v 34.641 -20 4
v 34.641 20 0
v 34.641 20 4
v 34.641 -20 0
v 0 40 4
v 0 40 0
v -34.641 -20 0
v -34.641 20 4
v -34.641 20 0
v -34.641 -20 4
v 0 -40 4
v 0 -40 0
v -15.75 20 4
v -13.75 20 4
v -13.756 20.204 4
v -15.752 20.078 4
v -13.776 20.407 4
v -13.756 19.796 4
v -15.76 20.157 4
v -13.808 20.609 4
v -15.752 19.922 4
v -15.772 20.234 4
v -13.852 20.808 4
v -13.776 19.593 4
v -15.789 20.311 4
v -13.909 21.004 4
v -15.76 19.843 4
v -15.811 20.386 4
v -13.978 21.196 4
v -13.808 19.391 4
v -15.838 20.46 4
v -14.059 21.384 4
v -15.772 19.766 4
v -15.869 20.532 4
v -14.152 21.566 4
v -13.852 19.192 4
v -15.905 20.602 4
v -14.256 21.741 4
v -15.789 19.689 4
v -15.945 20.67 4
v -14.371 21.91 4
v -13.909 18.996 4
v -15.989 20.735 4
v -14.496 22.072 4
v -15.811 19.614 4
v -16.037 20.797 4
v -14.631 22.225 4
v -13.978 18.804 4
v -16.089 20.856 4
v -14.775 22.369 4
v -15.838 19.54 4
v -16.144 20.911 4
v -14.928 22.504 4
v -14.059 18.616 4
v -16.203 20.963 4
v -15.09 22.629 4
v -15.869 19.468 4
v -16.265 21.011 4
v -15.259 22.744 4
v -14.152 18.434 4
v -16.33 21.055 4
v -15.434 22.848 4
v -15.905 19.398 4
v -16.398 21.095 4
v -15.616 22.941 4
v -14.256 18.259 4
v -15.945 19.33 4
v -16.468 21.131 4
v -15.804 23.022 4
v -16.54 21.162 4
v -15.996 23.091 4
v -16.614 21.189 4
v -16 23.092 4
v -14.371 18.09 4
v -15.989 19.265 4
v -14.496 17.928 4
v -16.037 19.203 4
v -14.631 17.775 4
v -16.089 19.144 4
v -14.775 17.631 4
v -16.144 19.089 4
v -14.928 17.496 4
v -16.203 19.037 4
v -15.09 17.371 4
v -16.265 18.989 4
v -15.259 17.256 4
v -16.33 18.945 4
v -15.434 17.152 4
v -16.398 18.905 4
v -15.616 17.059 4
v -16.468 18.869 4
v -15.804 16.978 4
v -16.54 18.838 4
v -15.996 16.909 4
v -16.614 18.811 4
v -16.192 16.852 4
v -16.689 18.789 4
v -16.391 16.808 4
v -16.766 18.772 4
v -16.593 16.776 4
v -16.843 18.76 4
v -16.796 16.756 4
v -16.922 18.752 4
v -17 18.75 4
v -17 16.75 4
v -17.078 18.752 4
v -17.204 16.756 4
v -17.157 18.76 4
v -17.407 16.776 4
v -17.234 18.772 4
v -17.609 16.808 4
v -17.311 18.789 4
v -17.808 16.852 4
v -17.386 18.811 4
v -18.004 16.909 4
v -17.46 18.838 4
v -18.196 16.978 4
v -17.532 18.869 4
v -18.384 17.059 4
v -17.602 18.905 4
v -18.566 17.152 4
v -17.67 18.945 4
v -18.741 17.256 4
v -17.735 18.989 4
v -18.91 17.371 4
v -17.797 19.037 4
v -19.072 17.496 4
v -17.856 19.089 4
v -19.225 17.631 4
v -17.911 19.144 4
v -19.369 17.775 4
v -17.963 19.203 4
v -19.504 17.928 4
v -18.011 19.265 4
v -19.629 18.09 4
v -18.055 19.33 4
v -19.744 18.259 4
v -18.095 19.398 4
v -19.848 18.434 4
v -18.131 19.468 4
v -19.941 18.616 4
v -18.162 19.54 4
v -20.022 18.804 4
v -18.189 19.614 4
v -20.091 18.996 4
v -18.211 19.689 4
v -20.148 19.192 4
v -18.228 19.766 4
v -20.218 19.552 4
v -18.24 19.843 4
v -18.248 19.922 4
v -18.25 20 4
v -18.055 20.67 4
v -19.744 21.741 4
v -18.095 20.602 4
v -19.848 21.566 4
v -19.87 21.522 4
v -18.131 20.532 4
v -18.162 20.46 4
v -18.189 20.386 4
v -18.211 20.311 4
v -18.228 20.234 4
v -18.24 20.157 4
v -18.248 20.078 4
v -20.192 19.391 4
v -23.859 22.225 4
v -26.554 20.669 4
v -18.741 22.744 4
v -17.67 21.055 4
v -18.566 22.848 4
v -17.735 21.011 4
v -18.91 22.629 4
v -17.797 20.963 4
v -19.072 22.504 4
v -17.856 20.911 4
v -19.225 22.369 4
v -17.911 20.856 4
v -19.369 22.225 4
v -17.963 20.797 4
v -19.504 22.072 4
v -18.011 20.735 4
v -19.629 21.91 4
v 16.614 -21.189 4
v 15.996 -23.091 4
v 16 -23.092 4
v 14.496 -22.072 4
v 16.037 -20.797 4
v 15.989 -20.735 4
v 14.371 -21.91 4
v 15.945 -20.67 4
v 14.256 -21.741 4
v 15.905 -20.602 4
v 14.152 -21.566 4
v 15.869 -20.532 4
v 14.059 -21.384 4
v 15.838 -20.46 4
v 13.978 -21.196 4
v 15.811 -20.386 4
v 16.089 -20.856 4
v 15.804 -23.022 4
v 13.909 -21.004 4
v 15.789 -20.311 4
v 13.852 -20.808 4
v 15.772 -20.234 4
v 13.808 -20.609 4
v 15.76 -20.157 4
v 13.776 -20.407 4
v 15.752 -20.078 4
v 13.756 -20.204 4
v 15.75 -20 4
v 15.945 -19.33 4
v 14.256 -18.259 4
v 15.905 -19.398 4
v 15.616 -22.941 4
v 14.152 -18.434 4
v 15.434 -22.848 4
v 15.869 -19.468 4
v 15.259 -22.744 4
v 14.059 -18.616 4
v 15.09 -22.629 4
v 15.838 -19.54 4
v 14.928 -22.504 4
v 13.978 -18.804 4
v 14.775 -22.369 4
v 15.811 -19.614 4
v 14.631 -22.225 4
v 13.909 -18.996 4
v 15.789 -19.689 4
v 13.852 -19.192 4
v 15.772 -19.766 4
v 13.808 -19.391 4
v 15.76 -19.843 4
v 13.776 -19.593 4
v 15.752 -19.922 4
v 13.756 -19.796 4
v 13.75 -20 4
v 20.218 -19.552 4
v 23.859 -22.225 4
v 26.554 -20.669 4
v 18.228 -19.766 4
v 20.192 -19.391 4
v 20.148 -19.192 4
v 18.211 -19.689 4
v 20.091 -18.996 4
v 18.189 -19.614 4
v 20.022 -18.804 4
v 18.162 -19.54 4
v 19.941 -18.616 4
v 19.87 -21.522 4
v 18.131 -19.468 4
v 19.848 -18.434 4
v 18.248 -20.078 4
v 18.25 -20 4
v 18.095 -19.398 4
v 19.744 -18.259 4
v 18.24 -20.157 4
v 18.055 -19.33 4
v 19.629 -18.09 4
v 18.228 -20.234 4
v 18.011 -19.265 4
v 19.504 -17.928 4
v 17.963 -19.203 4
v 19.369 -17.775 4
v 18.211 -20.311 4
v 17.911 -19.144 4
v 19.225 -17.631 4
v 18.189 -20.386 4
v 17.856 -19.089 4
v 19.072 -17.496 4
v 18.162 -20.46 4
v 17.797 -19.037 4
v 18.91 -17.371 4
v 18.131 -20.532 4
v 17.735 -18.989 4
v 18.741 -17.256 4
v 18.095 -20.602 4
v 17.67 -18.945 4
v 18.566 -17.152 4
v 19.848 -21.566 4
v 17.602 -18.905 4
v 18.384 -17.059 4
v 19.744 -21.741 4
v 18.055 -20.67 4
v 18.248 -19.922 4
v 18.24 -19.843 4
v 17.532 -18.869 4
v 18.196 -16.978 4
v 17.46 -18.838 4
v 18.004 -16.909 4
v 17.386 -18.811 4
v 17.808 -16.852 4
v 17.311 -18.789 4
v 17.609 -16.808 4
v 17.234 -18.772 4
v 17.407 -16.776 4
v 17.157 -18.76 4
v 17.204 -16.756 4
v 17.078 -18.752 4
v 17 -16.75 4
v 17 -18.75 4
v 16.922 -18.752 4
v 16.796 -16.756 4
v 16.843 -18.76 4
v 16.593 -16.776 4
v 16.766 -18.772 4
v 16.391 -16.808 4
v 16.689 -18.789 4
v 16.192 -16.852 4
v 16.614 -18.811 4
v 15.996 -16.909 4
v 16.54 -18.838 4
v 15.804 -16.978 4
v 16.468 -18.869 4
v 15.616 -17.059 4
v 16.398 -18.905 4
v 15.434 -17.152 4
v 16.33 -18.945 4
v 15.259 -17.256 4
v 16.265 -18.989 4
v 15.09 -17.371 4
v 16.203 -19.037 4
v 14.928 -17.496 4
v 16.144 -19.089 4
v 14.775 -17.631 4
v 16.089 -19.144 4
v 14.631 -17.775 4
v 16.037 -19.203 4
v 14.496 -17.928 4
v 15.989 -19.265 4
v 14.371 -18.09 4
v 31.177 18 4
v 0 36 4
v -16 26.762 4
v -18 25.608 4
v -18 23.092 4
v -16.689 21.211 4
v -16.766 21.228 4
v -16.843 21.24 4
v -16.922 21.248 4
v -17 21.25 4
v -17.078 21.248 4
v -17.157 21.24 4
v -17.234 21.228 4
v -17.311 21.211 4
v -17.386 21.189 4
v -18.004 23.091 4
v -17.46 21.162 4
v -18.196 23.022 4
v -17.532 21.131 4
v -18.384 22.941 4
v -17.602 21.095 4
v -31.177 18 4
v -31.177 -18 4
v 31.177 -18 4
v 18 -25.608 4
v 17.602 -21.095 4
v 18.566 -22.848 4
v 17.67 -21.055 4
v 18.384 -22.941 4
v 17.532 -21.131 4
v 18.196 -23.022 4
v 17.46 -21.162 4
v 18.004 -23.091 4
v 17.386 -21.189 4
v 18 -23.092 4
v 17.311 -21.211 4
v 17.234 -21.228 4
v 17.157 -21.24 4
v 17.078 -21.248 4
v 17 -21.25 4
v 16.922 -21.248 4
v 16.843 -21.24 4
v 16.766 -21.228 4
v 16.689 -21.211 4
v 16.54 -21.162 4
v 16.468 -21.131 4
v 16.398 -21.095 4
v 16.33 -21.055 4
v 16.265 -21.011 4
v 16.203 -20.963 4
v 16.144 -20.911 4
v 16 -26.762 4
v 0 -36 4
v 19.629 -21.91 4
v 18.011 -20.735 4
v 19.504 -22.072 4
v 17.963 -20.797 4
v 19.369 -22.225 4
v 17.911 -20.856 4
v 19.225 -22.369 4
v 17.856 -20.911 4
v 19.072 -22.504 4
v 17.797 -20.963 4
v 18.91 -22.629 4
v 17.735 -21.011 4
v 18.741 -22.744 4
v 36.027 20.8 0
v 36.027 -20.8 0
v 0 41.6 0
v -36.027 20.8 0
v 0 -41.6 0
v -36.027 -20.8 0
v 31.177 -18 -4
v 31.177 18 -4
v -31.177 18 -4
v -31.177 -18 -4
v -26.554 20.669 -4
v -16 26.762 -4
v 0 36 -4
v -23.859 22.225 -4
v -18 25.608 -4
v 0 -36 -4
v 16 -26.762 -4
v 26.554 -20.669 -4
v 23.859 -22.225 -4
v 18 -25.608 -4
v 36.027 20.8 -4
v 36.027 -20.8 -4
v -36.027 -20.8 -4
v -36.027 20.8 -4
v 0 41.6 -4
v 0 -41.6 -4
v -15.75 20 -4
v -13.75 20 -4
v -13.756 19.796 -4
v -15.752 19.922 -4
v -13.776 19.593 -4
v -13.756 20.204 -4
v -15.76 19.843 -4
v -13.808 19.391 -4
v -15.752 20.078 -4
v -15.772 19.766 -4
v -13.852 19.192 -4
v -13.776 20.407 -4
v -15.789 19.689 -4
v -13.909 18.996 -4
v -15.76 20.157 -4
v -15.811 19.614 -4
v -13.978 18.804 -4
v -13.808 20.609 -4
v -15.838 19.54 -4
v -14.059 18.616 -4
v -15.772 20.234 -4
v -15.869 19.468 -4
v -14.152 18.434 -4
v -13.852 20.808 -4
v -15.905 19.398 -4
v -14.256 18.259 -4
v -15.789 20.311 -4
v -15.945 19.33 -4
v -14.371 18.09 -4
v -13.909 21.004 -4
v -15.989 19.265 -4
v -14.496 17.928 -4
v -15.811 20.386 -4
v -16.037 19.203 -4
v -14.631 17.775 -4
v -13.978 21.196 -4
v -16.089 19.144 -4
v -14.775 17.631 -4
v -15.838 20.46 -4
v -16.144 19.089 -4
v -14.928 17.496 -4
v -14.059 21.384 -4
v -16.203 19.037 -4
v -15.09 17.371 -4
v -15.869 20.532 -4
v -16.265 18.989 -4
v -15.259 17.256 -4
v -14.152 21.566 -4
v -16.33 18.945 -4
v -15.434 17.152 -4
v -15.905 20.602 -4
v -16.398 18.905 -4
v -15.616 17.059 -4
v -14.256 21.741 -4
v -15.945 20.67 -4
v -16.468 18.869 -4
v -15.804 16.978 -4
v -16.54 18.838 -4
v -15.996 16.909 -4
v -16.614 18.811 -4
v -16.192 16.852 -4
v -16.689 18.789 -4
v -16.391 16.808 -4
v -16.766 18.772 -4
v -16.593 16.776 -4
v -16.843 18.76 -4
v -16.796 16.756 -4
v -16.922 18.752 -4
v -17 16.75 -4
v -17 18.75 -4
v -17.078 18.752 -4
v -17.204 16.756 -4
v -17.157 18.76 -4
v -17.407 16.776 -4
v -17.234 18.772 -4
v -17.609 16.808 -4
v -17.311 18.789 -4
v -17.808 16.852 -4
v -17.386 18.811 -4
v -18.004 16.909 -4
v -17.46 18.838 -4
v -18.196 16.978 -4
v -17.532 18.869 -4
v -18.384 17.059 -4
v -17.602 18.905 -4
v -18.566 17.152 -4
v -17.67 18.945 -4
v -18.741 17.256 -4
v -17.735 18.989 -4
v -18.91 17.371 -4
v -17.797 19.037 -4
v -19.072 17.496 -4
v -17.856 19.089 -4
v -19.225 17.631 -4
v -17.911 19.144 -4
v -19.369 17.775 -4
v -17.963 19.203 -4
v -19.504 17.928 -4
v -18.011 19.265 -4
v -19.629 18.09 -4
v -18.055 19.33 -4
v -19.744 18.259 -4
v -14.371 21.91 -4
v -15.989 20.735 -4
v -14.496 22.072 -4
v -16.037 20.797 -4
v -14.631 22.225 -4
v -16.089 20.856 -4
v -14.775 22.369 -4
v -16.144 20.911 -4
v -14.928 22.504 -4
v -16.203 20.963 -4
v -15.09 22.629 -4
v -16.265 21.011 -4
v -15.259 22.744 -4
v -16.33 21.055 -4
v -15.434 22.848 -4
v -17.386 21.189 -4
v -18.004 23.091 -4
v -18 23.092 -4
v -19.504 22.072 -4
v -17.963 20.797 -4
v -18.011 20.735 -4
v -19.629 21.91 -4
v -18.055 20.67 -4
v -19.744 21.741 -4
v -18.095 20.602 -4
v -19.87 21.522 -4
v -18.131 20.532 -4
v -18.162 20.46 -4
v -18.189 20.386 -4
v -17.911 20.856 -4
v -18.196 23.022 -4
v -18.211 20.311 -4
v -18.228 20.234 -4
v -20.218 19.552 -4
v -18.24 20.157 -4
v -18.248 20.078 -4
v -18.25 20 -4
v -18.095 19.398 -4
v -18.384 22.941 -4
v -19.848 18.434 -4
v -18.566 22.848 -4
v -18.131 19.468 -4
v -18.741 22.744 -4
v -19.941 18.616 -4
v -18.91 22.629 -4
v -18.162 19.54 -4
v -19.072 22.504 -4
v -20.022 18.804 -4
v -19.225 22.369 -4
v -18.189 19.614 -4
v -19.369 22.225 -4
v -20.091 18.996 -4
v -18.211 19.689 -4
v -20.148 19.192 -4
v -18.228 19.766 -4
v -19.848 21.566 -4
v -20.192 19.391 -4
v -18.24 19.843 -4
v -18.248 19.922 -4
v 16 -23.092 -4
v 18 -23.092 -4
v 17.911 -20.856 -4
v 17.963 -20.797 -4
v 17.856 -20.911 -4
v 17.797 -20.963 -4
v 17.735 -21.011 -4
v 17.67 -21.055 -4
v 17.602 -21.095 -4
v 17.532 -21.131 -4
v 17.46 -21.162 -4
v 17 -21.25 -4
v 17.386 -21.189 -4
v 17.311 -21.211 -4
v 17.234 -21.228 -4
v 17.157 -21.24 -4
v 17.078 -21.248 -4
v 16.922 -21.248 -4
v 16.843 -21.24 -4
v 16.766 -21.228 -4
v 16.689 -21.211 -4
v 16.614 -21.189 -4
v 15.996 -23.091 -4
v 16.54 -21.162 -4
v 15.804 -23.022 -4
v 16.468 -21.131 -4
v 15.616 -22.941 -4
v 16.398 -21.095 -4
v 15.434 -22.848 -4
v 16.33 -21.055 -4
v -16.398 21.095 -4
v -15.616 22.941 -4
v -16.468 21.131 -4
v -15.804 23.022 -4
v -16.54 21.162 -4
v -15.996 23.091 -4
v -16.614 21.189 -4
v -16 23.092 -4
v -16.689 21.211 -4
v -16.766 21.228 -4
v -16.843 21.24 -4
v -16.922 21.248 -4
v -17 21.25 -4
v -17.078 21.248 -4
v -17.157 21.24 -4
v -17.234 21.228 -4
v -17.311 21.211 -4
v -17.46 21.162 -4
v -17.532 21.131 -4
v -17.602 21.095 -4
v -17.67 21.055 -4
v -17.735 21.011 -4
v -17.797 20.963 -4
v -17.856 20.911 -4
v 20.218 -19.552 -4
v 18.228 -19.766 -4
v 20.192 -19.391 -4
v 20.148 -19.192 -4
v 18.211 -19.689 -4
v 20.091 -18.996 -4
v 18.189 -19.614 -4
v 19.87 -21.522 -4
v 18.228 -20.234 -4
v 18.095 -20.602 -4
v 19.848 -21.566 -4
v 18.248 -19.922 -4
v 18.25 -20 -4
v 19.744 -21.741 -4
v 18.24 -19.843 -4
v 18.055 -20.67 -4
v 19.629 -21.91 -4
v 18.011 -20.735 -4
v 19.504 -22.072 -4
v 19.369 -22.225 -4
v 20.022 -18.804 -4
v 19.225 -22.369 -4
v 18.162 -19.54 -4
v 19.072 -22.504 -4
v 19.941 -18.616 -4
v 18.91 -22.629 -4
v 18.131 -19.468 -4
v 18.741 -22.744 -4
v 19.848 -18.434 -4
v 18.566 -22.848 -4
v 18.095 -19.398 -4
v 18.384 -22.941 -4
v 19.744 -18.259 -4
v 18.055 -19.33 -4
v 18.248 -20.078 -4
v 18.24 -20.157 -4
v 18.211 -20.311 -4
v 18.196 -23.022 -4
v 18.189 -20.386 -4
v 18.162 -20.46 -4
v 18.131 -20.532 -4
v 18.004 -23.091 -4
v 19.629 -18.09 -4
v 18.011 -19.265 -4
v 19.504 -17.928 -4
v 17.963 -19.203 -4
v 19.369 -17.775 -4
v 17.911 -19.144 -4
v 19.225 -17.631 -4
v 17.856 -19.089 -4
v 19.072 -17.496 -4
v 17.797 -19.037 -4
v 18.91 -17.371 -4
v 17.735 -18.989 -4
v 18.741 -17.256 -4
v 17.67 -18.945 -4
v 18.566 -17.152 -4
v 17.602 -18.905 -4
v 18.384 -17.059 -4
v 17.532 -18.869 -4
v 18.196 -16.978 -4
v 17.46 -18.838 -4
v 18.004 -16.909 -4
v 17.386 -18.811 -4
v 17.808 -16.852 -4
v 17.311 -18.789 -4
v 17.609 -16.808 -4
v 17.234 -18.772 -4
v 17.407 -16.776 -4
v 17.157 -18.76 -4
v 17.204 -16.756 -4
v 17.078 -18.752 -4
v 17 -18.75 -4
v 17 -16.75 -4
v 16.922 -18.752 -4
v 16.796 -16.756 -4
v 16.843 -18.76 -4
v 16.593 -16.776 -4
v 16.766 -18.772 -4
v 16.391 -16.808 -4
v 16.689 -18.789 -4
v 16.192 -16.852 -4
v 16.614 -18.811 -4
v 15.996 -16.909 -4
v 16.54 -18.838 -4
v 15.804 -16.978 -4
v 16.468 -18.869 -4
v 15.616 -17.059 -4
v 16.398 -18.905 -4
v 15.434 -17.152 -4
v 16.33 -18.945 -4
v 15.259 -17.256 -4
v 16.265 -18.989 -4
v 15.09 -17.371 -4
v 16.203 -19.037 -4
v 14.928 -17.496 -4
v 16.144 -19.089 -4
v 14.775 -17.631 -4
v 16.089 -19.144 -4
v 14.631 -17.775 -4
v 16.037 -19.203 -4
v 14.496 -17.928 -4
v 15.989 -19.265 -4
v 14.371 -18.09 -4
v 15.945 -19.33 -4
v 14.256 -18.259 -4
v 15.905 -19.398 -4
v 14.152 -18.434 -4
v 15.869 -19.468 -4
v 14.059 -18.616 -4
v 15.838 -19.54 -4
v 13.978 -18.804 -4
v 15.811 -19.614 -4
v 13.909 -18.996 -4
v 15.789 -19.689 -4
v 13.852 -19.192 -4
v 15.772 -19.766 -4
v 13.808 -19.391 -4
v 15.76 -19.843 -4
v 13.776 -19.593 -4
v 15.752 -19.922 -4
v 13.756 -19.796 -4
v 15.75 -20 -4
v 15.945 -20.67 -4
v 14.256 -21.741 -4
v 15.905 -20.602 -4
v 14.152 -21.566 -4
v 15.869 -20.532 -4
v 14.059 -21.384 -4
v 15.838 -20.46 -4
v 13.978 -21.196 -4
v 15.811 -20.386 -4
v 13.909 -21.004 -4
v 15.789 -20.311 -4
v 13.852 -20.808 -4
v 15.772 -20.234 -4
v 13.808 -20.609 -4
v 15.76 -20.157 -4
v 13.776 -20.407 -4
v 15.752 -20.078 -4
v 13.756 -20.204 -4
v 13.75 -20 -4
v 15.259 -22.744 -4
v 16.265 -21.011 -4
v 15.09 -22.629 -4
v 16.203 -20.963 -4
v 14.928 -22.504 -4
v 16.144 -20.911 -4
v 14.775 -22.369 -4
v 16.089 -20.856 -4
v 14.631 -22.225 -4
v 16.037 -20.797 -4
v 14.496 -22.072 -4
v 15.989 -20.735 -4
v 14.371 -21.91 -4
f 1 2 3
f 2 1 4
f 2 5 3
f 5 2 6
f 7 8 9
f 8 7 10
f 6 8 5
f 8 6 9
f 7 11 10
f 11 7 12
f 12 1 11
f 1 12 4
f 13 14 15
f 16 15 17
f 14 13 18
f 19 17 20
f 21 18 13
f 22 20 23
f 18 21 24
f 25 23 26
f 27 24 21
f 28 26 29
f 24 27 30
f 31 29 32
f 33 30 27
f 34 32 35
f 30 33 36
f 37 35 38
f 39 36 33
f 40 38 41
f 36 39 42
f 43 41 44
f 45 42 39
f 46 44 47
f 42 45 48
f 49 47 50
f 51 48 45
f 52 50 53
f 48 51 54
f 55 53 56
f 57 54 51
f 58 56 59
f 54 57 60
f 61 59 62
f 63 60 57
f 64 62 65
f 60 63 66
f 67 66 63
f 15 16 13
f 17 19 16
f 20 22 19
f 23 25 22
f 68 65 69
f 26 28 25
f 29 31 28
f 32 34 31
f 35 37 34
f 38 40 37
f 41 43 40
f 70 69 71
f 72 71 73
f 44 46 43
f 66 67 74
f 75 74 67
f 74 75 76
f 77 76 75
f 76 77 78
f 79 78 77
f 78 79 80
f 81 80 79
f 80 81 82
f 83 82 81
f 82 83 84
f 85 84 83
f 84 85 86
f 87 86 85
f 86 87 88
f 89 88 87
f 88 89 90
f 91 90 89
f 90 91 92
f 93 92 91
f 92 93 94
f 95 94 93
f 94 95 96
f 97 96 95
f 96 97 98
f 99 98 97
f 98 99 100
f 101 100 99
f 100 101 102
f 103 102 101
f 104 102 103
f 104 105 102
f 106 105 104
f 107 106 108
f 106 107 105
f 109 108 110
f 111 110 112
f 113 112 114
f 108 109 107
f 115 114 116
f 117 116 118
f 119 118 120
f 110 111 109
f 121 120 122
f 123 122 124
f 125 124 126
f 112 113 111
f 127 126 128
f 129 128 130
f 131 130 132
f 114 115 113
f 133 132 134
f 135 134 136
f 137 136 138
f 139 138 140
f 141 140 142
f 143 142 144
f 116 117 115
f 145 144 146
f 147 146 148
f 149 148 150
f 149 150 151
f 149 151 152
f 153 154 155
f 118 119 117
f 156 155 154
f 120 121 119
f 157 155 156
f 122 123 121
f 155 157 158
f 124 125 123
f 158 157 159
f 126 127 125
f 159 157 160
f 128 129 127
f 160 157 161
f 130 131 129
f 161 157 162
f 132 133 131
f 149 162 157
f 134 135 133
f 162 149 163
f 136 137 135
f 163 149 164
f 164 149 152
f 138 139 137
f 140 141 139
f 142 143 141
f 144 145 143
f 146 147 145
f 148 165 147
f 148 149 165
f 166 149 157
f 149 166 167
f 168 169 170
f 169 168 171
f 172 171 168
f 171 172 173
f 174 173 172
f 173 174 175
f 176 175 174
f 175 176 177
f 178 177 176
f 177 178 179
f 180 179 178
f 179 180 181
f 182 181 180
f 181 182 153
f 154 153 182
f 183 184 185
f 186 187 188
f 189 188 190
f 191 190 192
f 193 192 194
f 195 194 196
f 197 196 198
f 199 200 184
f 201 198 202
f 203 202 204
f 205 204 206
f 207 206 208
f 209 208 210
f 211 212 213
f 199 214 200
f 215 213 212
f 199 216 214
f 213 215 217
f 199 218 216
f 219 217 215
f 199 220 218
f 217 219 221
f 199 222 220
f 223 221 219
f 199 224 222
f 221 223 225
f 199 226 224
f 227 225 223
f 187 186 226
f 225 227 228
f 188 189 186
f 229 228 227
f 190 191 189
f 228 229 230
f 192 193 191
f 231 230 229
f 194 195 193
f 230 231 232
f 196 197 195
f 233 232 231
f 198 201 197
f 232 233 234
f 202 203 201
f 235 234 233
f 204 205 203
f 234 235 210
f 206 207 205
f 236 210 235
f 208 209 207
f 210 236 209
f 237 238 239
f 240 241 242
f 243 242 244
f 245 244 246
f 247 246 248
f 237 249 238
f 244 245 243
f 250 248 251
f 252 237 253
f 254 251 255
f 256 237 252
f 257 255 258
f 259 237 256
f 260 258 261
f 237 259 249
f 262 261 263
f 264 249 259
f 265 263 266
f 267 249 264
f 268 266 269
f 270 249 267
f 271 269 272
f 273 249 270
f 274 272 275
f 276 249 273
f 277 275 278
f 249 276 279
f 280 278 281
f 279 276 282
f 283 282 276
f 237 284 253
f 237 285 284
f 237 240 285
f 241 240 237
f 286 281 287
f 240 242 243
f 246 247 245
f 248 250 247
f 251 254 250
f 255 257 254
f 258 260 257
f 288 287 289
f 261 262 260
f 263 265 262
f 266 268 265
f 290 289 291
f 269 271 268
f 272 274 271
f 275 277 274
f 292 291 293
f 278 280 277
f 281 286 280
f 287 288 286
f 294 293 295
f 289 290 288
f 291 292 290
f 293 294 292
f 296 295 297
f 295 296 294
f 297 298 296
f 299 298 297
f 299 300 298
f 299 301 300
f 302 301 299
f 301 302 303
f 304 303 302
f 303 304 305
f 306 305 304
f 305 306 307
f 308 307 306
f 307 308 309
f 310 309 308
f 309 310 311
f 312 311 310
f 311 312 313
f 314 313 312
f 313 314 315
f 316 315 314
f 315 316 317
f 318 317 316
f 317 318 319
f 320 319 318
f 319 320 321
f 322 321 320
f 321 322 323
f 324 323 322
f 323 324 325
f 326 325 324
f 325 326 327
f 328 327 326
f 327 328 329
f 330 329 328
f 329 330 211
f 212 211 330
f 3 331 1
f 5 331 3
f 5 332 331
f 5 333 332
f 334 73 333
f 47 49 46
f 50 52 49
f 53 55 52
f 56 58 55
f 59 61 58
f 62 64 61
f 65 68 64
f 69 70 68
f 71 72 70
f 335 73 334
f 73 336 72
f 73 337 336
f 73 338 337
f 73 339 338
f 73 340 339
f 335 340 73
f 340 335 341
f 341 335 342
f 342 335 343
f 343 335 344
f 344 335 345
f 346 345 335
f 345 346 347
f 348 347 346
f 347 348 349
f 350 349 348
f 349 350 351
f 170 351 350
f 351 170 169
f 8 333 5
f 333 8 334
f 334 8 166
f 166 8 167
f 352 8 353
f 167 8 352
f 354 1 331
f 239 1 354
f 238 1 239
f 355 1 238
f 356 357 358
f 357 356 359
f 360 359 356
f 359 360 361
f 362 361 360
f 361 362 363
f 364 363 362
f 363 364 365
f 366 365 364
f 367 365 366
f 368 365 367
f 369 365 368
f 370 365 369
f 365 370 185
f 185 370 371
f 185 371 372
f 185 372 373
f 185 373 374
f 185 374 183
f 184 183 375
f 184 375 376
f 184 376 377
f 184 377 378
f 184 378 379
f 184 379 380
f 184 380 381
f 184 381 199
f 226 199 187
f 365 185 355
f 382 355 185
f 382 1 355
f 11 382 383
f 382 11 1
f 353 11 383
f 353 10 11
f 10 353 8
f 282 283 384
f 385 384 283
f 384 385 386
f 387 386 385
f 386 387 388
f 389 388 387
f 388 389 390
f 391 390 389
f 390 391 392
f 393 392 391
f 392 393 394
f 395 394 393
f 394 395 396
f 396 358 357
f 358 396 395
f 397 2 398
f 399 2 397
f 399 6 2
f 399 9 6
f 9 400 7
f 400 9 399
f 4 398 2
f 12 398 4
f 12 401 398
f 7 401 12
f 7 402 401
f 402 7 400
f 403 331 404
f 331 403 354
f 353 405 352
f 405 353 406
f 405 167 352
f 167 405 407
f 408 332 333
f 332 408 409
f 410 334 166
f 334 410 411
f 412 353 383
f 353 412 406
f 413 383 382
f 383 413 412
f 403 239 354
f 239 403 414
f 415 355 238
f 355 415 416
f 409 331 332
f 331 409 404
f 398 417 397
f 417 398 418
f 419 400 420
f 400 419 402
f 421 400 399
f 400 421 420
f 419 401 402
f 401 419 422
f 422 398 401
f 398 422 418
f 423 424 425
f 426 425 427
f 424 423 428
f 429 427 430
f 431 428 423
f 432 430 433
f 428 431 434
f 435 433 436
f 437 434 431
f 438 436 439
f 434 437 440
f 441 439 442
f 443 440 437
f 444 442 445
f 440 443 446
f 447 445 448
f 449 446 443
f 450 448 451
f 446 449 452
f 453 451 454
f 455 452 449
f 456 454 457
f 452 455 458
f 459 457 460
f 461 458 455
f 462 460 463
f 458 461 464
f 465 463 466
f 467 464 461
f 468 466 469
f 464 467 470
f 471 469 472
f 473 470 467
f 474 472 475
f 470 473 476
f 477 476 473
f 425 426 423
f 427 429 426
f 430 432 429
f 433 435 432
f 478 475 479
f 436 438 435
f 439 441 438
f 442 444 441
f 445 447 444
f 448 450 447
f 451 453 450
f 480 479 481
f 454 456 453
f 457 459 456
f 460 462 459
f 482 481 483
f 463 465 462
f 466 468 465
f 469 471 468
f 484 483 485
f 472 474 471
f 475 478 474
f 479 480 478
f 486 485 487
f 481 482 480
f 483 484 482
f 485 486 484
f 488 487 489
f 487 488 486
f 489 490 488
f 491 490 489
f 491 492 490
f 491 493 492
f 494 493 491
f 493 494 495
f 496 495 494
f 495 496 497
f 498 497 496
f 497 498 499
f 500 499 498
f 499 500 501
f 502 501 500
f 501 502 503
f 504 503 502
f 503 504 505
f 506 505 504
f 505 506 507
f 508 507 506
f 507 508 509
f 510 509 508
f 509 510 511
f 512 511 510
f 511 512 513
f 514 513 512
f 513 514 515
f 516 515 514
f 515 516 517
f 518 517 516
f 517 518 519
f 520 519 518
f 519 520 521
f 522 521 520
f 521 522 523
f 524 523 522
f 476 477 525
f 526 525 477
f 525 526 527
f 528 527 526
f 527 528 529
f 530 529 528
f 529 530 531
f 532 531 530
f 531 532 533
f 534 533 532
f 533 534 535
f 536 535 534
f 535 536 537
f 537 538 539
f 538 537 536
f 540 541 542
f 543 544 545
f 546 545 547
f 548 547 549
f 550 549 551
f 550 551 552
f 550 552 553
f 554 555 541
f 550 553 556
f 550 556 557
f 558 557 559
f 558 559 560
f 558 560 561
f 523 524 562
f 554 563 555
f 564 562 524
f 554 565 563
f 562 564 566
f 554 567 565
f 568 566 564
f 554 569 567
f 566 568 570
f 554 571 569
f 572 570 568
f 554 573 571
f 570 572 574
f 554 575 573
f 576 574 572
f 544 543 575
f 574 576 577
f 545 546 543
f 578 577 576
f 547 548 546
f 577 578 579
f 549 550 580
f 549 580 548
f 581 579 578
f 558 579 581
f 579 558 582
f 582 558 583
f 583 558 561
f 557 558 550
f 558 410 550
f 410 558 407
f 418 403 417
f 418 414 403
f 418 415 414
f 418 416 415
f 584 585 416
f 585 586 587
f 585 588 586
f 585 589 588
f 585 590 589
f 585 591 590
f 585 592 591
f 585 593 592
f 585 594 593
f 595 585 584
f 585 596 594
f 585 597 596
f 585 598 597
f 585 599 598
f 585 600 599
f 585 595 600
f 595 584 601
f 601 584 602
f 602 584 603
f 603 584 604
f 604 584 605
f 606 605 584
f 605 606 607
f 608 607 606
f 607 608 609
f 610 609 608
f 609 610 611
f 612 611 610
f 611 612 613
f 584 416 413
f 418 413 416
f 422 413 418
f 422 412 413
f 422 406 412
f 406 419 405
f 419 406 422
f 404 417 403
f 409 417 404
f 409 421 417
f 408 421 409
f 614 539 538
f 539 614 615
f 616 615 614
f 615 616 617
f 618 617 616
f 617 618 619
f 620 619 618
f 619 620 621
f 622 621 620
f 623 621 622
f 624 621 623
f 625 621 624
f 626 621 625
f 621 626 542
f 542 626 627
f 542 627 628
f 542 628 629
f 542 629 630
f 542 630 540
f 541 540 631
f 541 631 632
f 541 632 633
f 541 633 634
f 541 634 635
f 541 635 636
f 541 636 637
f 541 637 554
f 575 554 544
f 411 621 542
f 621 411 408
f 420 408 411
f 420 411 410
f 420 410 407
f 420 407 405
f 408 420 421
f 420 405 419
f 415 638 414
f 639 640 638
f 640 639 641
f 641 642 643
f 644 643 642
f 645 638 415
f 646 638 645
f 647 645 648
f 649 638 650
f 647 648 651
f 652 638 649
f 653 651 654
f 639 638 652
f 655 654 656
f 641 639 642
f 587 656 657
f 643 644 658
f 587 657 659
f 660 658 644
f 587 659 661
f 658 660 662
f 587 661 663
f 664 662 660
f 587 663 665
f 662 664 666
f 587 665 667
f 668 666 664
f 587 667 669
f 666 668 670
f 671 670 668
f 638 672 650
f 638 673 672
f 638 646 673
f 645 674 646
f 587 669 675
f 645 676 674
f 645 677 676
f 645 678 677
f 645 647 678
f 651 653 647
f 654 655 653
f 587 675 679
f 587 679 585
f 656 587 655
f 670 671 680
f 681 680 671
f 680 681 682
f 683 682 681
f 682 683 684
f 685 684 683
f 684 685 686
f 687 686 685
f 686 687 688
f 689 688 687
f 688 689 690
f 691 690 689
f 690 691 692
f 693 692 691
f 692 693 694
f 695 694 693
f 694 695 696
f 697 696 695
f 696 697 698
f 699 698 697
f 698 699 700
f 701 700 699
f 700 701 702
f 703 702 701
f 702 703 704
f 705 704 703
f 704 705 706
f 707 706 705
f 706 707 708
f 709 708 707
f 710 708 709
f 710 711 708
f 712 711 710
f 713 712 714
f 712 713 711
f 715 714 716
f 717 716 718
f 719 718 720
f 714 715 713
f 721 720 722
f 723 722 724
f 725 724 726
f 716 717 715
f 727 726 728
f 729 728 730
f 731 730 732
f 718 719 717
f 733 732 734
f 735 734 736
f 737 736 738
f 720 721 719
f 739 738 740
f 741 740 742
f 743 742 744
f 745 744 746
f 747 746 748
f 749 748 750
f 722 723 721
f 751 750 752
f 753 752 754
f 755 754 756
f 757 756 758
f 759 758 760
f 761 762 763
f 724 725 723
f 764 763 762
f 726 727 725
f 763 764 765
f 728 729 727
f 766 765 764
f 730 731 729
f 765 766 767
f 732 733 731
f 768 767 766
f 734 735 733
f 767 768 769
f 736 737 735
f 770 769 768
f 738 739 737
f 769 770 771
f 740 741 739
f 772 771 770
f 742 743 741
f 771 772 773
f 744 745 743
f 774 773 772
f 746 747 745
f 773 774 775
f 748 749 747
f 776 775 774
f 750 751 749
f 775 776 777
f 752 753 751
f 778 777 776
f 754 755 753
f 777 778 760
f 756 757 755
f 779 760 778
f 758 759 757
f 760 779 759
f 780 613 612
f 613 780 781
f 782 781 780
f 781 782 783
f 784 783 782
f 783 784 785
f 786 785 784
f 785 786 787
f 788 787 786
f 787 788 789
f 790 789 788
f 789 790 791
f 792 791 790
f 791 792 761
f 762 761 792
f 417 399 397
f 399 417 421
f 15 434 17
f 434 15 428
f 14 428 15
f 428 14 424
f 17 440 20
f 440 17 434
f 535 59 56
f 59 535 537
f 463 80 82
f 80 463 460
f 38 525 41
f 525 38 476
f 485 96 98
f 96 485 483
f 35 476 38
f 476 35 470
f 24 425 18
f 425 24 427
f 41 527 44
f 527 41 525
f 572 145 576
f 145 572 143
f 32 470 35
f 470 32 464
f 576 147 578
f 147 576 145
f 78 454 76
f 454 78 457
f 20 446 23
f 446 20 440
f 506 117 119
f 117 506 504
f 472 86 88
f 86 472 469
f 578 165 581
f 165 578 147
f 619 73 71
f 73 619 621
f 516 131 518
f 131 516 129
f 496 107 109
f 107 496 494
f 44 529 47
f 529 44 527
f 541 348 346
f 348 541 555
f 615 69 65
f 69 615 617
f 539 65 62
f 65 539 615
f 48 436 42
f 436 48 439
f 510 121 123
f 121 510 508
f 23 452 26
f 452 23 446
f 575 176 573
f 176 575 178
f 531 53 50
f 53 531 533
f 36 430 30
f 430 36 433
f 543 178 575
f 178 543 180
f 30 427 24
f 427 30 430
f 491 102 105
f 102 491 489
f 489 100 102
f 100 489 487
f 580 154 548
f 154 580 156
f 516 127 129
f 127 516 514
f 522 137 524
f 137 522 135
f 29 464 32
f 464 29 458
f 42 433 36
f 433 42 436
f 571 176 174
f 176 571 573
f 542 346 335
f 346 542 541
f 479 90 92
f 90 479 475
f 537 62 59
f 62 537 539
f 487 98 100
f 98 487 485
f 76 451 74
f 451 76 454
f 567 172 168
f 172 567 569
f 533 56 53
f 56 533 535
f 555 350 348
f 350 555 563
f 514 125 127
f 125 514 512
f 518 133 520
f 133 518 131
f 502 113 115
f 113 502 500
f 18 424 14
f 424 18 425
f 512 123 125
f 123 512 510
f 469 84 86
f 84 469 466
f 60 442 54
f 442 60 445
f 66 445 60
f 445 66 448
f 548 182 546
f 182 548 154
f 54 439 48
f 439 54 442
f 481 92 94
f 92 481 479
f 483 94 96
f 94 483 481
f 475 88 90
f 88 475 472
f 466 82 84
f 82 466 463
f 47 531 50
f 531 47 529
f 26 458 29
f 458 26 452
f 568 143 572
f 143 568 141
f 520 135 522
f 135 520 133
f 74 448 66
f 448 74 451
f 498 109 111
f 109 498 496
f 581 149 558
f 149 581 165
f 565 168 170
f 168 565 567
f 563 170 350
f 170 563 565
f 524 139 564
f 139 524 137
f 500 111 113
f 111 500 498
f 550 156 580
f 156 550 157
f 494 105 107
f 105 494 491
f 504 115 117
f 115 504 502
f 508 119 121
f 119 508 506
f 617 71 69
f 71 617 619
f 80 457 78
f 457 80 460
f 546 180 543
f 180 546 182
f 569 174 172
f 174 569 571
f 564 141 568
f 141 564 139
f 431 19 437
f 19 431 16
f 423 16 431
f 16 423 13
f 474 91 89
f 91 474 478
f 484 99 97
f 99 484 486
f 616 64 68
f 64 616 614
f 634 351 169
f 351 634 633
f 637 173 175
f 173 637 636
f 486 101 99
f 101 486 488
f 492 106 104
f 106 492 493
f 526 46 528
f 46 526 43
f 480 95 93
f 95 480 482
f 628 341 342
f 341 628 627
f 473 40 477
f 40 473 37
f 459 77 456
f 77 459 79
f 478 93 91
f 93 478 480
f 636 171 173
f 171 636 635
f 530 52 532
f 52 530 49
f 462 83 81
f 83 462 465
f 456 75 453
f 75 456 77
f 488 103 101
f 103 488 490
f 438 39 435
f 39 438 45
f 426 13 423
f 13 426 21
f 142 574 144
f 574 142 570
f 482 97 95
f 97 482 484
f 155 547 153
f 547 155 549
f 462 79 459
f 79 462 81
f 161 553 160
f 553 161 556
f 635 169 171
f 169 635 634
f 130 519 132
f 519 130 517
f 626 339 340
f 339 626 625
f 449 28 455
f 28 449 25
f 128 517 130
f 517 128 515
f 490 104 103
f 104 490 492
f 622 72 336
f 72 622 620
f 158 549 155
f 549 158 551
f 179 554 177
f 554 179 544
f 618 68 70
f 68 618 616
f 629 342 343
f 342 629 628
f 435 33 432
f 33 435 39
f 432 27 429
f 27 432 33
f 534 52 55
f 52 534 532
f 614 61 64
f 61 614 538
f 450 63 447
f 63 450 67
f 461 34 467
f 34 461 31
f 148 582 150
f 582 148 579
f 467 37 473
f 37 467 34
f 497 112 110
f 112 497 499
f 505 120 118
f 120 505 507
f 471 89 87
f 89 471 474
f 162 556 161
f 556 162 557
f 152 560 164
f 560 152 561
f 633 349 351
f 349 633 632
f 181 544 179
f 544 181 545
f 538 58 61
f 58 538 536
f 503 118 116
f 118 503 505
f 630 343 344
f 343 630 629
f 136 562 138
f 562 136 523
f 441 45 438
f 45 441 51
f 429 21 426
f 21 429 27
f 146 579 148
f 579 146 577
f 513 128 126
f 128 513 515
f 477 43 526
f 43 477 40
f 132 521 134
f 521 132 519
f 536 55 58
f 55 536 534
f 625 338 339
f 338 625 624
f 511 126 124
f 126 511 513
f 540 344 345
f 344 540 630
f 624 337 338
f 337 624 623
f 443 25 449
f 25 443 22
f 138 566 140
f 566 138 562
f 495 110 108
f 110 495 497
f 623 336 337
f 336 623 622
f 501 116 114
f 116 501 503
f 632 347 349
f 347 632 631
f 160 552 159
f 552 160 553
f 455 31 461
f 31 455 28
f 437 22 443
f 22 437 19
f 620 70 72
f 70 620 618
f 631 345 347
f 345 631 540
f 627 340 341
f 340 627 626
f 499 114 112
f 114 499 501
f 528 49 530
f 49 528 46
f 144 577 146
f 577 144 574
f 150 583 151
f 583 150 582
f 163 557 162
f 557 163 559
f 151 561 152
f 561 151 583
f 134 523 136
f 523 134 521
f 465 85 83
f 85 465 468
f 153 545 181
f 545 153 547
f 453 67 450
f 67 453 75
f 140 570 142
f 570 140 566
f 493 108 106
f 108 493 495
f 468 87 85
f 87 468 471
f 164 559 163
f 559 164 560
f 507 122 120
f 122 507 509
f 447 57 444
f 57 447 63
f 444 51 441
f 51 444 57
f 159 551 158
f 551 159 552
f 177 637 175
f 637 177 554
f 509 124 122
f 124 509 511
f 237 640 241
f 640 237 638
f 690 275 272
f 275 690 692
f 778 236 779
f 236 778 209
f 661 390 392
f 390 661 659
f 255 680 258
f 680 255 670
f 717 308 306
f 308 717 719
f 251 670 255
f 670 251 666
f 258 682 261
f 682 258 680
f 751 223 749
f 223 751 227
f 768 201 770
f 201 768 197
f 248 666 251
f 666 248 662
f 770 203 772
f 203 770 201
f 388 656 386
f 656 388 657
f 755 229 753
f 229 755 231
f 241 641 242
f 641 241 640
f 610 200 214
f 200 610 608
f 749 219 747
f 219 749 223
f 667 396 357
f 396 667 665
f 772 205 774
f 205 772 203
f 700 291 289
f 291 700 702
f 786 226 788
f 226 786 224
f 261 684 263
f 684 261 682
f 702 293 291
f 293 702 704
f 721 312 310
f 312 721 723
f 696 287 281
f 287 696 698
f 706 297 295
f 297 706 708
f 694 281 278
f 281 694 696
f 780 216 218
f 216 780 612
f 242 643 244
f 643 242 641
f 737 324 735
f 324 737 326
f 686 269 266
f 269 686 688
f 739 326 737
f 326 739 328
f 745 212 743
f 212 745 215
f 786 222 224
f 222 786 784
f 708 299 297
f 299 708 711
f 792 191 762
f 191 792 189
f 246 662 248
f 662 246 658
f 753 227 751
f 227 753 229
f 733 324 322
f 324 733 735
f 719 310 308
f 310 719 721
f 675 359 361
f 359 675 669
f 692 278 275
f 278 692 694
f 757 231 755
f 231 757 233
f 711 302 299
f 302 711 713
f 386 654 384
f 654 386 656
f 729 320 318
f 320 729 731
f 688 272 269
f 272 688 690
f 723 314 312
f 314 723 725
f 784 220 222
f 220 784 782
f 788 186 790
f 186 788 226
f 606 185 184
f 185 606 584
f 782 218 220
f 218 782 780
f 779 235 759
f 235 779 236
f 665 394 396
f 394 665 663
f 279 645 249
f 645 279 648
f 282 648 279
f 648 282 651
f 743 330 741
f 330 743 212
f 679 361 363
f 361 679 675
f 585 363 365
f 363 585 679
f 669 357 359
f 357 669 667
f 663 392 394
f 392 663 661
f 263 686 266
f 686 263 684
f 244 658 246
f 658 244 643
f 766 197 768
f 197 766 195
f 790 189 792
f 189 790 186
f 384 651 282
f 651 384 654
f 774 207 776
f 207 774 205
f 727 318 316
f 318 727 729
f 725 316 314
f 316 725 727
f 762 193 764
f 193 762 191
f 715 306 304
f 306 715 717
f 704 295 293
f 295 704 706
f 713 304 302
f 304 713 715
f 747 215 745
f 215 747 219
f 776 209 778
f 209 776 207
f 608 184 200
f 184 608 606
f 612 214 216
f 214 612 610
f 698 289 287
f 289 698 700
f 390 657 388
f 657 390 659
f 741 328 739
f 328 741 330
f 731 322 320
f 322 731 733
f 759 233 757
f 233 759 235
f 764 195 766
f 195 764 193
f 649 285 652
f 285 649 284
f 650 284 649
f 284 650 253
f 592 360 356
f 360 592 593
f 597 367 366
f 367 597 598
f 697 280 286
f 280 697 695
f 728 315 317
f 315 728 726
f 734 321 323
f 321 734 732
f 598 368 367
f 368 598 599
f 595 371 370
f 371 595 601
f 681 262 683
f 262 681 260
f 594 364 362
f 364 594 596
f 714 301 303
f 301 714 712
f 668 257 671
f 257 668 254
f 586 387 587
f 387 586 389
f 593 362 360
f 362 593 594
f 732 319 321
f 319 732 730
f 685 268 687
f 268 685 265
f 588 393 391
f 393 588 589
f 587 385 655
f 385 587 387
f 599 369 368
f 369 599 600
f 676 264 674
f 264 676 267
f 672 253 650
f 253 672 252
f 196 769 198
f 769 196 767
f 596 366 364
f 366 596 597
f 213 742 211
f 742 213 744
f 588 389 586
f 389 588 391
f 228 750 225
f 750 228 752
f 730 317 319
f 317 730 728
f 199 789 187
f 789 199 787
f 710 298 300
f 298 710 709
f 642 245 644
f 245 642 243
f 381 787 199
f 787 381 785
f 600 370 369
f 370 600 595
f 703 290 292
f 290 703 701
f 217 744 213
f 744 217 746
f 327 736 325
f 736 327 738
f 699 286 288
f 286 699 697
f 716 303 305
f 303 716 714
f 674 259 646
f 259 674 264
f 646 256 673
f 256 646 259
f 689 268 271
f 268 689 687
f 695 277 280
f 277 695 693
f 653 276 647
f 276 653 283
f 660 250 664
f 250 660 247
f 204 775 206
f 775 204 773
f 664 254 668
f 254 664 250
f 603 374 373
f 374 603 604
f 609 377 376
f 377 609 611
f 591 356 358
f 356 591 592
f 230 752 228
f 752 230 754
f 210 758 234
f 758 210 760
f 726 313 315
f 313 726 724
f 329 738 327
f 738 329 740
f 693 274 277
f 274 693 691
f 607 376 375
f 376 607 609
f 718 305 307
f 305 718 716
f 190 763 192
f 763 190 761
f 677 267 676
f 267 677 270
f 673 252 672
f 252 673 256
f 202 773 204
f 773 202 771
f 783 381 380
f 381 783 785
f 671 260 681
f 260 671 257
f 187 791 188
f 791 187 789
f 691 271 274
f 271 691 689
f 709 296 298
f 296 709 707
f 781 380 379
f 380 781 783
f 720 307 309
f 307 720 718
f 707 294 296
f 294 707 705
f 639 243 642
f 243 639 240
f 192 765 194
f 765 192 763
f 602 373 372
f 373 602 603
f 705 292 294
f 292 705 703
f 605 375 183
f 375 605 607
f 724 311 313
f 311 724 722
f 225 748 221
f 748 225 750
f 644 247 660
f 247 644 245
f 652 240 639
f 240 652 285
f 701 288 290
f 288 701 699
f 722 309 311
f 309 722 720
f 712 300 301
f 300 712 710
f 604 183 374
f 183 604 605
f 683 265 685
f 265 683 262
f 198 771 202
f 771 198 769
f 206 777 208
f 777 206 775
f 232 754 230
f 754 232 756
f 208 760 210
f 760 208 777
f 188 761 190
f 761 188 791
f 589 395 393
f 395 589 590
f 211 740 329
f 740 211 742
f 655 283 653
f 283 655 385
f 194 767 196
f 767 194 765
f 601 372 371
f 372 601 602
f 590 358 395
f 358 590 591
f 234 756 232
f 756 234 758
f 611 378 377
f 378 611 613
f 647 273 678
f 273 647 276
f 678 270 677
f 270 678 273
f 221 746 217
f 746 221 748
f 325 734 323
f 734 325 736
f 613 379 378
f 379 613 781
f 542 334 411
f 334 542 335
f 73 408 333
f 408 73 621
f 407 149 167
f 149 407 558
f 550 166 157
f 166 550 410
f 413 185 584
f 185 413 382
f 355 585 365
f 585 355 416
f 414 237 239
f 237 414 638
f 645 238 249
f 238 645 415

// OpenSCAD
$fn=100;

color([0, 49/255, 83/255])laemp_base(4, 4, false);

module laemp_base(h=10, h_lower=5, thread=false){
    union(){
        // upper hexagon
        difference(){
            rotate([0,0,90])hexagon(40,h);
            translate([0,0,-0.5])rotate([0,0,90])hexagon(36,h+1);
        }
        // lower hexagon
        translate([0,0, -h_lower])
        difference(){
            rotate([0,0,90])hexagon(40+1.6,h_lower);
            translate([0,0,-0.5])rotate([0,0,90])hexagon(36,h_lower+1);
        }
        // screwholes
        translate([-17,20,-h_lower])mounting_holes(2.5,h+h_lower,2);
        translate([17,-20,-h_lower])mounting_holes(2.5,h+h_lower,2);
        // bridges
        translate([-17,20,h/2-h_lower/2]){
            rotate([0,0,90])translate([3+2,0,0])cube([6,2,h+h_lower],center=true);
            rotate([0,0,170])translate([5+2,0,0])cube([10,2,h+h_lower],center=true);
        }
        translate([17,-20,h/2-h_lower/2]){
            rotate([0,0,-90])translate([3+2,0,0])cube([6,2,h+h_lower],center=true);
            rotate([0,0,-10])translate([5+2,0,0])cube([10,2,h+h_lower],center=true);
        }
    }
}

module thread(do=10,di=9,s=1.9,h=10,res=5){
    ssize=360/res;
    for(i=[1:res:360/s*h]){
        rotate([0,0,i])translate([(do-di)/2,0,s*i/360-0.01])cylinder(h=s/ssize+0.02,d=di);
    }
}

module mounting_holes(sDia=3,h=1,wall=2){
    difference(){
        cylinder(d=wall*2+sDia,h=h);
        translate([0,0,-0.5])cylinder(d=sDia,h=h+1);
    }
}

module hexagon(x = 10, h = 1){
    cylinder(d=x*2, h=h, $fn=6);
}
